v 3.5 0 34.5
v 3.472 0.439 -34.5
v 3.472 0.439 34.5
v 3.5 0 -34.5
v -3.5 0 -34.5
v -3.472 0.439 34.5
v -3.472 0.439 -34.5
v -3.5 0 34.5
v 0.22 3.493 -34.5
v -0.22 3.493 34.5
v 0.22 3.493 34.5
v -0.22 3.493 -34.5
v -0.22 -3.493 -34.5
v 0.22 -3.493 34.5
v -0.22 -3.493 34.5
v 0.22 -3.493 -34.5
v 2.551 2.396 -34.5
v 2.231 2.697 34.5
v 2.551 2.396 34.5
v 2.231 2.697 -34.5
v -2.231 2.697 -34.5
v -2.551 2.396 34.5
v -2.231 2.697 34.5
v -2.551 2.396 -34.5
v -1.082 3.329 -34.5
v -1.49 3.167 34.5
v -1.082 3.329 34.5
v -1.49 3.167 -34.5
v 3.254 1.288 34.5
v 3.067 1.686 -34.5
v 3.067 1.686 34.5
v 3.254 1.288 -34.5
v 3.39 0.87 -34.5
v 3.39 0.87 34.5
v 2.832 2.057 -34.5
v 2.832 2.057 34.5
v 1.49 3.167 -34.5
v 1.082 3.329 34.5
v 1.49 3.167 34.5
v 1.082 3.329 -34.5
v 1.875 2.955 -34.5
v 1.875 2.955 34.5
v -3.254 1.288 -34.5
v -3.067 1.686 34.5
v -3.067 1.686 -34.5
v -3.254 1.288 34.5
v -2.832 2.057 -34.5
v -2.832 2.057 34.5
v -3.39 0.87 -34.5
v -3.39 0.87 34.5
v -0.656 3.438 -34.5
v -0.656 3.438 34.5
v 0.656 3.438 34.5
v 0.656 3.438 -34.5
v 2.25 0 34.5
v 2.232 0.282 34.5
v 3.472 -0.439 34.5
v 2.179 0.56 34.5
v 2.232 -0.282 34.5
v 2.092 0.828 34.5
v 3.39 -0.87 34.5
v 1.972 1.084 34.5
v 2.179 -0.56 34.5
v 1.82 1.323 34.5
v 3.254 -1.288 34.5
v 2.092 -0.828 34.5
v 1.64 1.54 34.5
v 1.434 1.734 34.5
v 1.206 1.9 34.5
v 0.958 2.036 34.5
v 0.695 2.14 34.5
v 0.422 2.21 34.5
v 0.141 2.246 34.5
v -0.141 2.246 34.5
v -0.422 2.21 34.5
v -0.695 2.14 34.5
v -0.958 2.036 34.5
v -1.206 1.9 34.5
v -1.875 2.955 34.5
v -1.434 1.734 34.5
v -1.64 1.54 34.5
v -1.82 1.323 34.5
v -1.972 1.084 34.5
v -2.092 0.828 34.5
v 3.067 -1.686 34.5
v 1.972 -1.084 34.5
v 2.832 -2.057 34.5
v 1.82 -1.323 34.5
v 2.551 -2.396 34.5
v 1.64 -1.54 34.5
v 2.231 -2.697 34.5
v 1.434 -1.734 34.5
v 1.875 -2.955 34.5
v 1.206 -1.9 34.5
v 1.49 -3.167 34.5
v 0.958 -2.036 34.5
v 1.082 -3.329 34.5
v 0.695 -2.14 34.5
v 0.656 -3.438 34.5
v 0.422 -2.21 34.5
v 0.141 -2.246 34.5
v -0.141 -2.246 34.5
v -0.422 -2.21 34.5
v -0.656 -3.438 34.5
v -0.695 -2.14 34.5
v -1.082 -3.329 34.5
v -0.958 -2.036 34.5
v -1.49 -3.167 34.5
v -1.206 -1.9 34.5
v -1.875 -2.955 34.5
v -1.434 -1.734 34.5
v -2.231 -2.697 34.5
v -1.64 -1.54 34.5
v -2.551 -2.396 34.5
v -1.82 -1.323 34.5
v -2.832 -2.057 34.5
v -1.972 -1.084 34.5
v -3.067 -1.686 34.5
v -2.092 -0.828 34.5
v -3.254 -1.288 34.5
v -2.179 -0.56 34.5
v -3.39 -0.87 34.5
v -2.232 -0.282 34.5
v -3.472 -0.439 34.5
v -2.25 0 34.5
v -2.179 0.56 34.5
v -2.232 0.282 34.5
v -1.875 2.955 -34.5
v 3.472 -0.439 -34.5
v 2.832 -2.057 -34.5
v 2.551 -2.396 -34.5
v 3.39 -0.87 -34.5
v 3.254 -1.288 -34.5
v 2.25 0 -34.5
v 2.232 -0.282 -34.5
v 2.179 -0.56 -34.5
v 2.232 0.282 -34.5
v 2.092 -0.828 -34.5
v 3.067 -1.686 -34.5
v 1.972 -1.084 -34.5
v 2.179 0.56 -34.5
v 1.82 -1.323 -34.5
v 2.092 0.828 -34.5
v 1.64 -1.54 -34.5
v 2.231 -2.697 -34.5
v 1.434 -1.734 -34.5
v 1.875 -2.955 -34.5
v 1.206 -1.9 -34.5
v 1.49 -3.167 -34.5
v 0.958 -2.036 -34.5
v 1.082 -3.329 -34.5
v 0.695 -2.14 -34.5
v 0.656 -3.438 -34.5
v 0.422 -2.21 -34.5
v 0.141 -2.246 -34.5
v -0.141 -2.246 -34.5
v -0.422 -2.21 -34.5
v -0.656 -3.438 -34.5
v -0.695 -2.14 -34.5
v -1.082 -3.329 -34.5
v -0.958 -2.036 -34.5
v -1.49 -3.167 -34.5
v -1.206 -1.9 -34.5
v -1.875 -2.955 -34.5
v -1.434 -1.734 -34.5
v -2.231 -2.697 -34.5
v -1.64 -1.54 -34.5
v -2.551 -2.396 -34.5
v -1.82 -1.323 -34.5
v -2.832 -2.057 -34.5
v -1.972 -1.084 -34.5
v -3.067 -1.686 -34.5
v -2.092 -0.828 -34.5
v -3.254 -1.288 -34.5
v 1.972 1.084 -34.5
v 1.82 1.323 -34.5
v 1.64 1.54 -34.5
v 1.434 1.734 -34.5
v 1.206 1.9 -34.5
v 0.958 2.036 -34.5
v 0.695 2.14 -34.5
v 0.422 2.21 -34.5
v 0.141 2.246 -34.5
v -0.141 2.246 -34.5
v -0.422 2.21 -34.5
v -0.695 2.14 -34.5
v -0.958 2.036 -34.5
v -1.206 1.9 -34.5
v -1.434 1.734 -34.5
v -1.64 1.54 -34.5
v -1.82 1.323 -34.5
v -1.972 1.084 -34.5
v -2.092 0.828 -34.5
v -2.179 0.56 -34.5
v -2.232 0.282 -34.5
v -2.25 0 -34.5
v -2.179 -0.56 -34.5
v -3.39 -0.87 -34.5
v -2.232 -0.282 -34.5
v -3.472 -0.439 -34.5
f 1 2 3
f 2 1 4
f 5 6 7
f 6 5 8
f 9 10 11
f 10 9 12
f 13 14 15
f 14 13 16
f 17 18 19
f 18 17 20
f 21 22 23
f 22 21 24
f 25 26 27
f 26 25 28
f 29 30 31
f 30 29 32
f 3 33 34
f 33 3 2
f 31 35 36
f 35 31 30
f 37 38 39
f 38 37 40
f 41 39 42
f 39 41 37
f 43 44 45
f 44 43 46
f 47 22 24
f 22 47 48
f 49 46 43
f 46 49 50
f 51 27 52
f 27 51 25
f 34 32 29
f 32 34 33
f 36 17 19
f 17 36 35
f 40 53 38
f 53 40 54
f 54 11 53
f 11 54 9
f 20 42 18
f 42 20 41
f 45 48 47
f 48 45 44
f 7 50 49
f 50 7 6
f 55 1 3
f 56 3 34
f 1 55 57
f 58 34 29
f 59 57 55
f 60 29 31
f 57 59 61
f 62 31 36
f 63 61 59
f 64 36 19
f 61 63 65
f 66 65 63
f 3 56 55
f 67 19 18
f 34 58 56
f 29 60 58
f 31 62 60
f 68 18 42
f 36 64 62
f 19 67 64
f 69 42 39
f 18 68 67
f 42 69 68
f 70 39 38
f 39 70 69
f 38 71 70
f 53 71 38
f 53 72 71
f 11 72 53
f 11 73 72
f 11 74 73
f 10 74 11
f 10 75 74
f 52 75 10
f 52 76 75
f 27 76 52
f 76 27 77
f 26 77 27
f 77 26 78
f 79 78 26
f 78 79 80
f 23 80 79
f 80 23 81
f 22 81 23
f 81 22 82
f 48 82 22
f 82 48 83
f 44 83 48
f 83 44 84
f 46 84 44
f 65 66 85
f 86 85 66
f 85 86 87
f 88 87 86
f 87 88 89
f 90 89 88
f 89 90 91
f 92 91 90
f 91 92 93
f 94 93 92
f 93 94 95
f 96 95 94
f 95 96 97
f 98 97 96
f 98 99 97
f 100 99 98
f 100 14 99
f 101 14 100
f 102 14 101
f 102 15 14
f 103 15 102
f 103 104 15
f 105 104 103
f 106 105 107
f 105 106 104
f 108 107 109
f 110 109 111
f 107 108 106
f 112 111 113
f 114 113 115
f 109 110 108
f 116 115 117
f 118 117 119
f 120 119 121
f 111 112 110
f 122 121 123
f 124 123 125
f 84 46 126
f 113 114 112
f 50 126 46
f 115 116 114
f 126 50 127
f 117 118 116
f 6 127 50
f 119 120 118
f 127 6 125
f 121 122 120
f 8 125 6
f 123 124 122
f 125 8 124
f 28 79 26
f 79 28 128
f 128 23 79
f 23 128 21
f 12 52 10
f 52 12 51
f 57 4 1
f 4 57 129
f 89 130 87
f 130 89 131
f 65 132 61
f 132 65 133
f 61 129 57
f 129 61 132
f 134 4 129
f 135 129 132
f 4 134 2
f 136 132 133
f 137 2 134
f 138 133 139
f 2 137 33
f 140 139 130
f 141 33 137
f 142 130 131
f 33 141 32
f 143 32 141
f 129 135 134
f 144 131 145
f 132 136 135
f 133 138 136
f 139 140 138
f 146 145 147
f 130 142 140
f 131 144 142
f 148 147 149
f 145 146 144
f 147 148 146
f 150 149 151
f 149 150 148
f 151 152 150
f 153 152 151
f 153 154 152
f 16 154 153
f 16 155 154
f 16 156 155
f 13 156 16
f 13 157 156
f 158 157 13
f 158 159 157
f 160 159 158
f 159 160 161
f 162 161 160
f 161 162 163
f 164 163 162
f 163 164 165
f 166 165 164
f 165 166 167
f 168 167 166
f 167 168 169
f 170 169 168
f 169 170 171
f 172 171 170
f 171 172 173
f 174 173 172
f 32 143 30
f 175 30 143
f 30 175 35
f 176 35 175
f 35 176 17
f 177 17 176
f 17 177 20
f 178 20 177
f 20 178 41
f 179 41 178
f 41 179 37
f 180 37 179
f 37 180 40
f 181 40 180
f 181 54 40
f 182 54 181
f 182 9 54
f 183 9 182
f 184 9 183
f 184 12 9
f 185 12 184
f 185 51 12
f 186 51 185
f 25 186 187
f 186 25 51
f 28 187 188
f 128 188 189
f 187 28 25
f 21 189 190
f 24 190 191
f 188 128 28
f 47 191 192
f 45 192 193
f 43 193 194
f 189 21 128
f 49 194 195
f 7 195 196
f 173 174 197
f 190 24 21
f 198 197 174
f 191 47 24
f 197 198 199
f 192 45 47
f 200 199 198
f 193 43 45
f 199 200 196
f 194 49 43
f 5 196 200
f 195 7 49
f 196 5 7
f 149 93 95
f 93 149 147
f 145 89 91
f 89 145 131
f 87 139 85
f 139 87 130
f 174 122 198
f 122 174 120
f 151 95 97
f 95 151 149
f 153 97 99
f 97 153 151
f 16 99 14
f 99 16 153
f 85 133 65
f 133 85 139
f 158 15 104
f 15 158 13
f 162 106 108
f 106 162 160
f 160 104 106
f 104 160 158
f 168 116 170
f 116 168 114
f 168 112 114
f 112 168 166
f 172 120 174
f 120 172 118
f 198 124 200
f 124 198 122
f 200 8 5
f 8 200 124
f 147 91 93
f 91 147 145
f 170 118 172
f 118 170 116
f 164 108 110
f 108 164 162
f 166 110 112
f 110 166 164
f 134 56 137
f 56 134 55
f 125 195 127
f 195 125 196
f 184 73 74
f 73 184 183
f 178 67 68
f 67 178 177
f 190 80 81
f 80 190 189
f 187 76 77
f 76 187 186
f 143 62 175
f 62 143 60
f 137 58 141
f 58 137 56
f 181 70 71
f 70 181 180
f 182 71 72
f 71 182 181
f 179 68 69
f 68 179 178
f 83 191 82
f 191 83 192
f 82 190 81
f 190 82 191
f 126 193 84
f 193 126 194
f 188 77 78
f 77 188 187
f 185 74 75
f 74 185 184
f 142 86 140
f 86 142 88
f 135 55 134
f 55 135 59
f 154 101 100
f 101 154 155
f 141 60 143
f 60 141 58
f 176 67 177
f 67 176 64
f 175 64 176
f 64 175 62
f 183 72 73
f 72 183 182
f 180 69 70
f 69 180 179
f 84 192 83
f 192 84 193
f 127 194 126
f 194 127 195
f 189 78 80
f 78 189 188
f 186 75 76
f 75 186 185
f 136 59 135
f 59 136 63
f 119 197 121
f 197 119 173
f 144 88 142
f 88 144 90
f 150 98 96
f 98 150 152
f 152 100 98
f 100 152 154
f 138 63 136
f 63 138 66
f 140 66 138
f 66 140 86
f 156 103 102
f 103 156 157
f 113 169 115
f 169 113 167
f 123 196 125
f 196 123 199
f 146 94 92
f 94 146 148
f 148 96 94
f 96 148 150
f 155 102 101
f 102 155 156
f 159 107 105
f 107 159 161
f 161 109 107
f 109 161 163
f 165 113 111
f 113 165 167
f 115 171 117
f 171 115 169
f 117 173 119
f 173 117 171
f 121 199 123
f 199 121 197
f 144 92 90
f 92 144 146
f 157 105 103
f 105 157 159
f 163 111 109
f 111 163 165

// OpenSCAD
$fn = 50;


difference() {
	union() {
		translate(v = [0, 0, -34.5000000000]) {
			cylinder(h = 69, r = 3.5000000000);
		}
	}
	union() {
		translate(v = [0, 0, -100.0000000000]) {
			cylinder(h = 200, r = 2.2500000000);
		}
	}
}
